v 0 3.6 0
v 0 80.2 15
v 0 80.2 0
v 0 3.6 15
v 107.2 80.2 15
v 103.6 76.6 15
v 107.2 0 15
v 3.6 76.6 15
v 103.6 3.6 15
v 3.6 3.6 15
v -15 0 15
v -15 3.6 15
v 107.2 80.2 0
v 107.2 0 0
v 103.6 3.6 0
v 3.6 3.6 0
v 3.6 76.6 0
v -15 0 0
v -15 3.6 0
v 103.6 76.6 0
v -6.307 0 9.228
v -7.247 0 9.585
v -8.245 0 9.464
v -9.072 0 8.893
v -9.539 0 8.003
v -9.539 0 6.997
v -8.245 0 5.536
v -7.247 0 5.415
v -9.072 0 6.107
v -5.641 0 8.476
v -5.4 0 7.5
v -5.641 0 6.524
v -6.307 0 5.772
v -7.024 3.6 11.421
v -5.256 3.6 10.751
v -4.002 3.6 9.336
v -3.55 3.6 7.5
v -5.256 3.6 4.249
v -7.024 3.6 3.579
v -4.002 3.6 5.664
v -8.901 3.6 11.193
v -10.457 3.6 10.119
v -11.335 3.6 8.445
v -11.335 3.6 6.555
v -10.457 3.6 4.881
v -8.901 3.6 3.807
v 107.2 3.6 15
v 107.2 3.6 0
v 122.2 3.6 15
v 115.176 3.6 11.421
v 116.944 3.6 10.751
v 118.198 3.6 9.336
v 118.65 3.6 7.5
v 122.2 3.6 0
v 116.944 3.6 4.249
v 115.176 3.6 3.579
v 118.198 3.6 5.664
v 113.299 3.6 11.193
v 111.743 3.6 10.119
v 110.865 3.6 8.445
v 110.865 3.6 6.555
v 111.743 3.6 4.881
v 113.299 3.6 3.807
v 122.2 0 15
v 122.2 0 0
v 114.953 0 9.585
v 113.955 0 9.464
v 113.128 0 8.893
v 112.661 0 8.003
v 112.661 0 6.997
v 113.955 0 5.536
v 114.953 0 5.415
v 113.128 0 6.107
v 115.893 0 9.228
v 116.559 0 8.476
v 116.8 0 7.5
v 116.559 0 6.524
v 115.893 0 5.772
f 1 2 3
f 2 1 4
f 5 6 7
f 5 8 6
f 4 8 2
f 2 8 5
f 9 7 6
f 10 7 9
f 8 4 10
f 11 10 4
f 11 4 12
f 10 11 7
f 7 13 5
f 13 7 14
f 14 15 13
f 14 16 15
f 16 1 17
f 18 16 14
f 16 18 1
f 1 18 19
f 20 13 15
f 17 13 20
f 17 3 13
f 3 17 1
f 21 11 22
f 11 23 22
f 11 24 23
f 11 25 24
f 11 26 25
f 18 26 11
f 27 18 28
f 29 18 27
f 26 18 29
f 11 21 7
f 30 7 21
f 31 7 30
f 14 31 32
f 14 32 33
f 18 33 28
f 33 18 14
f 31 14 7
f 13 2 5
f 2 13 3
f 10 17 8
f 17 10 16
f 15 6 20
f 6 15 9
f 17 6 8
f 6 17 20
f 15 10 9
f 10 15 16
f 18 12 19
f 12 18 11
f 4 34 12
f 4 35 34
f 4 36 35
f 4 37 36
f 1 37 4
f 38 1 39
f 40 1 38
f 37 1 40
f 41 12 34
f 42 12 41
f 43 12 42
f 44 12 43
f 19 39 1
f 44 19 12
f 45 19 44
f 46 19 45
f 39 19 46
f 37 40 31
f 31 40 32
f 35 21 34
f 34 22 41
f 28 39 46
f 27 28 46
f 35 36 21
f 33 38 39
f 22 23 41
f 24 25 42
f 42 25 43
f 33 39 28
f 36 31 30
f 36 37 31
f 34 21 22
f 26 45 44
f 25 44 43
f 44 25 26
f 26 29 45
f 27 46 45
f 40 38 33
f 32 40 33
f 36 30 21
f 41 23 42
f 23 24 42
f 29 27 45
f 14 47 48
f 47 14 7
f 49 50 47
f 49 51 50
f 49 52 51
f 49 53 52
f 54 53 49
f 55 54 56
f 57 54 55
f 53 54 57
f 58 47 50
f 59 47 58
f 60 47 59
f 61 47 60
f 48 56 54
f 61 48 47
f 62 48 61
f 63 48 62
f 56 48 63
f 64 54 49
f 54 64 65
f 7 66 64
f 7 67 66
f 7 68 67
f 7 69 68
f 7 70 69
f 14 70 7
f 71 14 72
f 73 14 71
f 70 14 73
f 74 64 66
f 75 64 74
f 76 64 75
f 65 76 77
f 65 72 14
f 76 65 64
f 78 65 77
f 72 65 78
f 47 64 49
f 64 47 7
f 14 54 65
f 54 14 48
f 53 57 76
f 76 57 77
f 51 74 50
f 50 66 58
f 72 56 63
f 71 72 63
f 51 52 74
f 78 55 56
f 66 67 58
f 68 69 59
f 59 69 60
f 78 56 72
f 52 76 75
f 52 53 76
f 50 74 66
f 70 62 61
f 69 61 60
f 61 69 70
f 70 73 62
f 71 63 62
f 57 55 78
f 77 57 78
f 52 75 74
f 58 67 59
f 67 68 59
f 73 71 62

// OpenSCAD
thickness=3.6;
2thickness=thickness*2;

screw_d=4.2;
counter_sink=7.9;

length=100;
width=73;
height=15;

module screw_tab() {
    difference() {
        cube([height, height, thickness]);
        translate([height/2, height/2, 0])cylinder(thickness, d1=screw_d, d2=counter_sink);
    }
}
    

difference() {
    cube([length+2thickness, width+2thickness, height]);
    translate([thickness, thickness, 0])cube([length, width, height]);
}

translate([-height, 0, height])
    rotate([-90, 0, 0])
    screw_tab();

translate([length+2thickness, 0, height])
    rotate([-90, 0, 0])
    screw_tab();
